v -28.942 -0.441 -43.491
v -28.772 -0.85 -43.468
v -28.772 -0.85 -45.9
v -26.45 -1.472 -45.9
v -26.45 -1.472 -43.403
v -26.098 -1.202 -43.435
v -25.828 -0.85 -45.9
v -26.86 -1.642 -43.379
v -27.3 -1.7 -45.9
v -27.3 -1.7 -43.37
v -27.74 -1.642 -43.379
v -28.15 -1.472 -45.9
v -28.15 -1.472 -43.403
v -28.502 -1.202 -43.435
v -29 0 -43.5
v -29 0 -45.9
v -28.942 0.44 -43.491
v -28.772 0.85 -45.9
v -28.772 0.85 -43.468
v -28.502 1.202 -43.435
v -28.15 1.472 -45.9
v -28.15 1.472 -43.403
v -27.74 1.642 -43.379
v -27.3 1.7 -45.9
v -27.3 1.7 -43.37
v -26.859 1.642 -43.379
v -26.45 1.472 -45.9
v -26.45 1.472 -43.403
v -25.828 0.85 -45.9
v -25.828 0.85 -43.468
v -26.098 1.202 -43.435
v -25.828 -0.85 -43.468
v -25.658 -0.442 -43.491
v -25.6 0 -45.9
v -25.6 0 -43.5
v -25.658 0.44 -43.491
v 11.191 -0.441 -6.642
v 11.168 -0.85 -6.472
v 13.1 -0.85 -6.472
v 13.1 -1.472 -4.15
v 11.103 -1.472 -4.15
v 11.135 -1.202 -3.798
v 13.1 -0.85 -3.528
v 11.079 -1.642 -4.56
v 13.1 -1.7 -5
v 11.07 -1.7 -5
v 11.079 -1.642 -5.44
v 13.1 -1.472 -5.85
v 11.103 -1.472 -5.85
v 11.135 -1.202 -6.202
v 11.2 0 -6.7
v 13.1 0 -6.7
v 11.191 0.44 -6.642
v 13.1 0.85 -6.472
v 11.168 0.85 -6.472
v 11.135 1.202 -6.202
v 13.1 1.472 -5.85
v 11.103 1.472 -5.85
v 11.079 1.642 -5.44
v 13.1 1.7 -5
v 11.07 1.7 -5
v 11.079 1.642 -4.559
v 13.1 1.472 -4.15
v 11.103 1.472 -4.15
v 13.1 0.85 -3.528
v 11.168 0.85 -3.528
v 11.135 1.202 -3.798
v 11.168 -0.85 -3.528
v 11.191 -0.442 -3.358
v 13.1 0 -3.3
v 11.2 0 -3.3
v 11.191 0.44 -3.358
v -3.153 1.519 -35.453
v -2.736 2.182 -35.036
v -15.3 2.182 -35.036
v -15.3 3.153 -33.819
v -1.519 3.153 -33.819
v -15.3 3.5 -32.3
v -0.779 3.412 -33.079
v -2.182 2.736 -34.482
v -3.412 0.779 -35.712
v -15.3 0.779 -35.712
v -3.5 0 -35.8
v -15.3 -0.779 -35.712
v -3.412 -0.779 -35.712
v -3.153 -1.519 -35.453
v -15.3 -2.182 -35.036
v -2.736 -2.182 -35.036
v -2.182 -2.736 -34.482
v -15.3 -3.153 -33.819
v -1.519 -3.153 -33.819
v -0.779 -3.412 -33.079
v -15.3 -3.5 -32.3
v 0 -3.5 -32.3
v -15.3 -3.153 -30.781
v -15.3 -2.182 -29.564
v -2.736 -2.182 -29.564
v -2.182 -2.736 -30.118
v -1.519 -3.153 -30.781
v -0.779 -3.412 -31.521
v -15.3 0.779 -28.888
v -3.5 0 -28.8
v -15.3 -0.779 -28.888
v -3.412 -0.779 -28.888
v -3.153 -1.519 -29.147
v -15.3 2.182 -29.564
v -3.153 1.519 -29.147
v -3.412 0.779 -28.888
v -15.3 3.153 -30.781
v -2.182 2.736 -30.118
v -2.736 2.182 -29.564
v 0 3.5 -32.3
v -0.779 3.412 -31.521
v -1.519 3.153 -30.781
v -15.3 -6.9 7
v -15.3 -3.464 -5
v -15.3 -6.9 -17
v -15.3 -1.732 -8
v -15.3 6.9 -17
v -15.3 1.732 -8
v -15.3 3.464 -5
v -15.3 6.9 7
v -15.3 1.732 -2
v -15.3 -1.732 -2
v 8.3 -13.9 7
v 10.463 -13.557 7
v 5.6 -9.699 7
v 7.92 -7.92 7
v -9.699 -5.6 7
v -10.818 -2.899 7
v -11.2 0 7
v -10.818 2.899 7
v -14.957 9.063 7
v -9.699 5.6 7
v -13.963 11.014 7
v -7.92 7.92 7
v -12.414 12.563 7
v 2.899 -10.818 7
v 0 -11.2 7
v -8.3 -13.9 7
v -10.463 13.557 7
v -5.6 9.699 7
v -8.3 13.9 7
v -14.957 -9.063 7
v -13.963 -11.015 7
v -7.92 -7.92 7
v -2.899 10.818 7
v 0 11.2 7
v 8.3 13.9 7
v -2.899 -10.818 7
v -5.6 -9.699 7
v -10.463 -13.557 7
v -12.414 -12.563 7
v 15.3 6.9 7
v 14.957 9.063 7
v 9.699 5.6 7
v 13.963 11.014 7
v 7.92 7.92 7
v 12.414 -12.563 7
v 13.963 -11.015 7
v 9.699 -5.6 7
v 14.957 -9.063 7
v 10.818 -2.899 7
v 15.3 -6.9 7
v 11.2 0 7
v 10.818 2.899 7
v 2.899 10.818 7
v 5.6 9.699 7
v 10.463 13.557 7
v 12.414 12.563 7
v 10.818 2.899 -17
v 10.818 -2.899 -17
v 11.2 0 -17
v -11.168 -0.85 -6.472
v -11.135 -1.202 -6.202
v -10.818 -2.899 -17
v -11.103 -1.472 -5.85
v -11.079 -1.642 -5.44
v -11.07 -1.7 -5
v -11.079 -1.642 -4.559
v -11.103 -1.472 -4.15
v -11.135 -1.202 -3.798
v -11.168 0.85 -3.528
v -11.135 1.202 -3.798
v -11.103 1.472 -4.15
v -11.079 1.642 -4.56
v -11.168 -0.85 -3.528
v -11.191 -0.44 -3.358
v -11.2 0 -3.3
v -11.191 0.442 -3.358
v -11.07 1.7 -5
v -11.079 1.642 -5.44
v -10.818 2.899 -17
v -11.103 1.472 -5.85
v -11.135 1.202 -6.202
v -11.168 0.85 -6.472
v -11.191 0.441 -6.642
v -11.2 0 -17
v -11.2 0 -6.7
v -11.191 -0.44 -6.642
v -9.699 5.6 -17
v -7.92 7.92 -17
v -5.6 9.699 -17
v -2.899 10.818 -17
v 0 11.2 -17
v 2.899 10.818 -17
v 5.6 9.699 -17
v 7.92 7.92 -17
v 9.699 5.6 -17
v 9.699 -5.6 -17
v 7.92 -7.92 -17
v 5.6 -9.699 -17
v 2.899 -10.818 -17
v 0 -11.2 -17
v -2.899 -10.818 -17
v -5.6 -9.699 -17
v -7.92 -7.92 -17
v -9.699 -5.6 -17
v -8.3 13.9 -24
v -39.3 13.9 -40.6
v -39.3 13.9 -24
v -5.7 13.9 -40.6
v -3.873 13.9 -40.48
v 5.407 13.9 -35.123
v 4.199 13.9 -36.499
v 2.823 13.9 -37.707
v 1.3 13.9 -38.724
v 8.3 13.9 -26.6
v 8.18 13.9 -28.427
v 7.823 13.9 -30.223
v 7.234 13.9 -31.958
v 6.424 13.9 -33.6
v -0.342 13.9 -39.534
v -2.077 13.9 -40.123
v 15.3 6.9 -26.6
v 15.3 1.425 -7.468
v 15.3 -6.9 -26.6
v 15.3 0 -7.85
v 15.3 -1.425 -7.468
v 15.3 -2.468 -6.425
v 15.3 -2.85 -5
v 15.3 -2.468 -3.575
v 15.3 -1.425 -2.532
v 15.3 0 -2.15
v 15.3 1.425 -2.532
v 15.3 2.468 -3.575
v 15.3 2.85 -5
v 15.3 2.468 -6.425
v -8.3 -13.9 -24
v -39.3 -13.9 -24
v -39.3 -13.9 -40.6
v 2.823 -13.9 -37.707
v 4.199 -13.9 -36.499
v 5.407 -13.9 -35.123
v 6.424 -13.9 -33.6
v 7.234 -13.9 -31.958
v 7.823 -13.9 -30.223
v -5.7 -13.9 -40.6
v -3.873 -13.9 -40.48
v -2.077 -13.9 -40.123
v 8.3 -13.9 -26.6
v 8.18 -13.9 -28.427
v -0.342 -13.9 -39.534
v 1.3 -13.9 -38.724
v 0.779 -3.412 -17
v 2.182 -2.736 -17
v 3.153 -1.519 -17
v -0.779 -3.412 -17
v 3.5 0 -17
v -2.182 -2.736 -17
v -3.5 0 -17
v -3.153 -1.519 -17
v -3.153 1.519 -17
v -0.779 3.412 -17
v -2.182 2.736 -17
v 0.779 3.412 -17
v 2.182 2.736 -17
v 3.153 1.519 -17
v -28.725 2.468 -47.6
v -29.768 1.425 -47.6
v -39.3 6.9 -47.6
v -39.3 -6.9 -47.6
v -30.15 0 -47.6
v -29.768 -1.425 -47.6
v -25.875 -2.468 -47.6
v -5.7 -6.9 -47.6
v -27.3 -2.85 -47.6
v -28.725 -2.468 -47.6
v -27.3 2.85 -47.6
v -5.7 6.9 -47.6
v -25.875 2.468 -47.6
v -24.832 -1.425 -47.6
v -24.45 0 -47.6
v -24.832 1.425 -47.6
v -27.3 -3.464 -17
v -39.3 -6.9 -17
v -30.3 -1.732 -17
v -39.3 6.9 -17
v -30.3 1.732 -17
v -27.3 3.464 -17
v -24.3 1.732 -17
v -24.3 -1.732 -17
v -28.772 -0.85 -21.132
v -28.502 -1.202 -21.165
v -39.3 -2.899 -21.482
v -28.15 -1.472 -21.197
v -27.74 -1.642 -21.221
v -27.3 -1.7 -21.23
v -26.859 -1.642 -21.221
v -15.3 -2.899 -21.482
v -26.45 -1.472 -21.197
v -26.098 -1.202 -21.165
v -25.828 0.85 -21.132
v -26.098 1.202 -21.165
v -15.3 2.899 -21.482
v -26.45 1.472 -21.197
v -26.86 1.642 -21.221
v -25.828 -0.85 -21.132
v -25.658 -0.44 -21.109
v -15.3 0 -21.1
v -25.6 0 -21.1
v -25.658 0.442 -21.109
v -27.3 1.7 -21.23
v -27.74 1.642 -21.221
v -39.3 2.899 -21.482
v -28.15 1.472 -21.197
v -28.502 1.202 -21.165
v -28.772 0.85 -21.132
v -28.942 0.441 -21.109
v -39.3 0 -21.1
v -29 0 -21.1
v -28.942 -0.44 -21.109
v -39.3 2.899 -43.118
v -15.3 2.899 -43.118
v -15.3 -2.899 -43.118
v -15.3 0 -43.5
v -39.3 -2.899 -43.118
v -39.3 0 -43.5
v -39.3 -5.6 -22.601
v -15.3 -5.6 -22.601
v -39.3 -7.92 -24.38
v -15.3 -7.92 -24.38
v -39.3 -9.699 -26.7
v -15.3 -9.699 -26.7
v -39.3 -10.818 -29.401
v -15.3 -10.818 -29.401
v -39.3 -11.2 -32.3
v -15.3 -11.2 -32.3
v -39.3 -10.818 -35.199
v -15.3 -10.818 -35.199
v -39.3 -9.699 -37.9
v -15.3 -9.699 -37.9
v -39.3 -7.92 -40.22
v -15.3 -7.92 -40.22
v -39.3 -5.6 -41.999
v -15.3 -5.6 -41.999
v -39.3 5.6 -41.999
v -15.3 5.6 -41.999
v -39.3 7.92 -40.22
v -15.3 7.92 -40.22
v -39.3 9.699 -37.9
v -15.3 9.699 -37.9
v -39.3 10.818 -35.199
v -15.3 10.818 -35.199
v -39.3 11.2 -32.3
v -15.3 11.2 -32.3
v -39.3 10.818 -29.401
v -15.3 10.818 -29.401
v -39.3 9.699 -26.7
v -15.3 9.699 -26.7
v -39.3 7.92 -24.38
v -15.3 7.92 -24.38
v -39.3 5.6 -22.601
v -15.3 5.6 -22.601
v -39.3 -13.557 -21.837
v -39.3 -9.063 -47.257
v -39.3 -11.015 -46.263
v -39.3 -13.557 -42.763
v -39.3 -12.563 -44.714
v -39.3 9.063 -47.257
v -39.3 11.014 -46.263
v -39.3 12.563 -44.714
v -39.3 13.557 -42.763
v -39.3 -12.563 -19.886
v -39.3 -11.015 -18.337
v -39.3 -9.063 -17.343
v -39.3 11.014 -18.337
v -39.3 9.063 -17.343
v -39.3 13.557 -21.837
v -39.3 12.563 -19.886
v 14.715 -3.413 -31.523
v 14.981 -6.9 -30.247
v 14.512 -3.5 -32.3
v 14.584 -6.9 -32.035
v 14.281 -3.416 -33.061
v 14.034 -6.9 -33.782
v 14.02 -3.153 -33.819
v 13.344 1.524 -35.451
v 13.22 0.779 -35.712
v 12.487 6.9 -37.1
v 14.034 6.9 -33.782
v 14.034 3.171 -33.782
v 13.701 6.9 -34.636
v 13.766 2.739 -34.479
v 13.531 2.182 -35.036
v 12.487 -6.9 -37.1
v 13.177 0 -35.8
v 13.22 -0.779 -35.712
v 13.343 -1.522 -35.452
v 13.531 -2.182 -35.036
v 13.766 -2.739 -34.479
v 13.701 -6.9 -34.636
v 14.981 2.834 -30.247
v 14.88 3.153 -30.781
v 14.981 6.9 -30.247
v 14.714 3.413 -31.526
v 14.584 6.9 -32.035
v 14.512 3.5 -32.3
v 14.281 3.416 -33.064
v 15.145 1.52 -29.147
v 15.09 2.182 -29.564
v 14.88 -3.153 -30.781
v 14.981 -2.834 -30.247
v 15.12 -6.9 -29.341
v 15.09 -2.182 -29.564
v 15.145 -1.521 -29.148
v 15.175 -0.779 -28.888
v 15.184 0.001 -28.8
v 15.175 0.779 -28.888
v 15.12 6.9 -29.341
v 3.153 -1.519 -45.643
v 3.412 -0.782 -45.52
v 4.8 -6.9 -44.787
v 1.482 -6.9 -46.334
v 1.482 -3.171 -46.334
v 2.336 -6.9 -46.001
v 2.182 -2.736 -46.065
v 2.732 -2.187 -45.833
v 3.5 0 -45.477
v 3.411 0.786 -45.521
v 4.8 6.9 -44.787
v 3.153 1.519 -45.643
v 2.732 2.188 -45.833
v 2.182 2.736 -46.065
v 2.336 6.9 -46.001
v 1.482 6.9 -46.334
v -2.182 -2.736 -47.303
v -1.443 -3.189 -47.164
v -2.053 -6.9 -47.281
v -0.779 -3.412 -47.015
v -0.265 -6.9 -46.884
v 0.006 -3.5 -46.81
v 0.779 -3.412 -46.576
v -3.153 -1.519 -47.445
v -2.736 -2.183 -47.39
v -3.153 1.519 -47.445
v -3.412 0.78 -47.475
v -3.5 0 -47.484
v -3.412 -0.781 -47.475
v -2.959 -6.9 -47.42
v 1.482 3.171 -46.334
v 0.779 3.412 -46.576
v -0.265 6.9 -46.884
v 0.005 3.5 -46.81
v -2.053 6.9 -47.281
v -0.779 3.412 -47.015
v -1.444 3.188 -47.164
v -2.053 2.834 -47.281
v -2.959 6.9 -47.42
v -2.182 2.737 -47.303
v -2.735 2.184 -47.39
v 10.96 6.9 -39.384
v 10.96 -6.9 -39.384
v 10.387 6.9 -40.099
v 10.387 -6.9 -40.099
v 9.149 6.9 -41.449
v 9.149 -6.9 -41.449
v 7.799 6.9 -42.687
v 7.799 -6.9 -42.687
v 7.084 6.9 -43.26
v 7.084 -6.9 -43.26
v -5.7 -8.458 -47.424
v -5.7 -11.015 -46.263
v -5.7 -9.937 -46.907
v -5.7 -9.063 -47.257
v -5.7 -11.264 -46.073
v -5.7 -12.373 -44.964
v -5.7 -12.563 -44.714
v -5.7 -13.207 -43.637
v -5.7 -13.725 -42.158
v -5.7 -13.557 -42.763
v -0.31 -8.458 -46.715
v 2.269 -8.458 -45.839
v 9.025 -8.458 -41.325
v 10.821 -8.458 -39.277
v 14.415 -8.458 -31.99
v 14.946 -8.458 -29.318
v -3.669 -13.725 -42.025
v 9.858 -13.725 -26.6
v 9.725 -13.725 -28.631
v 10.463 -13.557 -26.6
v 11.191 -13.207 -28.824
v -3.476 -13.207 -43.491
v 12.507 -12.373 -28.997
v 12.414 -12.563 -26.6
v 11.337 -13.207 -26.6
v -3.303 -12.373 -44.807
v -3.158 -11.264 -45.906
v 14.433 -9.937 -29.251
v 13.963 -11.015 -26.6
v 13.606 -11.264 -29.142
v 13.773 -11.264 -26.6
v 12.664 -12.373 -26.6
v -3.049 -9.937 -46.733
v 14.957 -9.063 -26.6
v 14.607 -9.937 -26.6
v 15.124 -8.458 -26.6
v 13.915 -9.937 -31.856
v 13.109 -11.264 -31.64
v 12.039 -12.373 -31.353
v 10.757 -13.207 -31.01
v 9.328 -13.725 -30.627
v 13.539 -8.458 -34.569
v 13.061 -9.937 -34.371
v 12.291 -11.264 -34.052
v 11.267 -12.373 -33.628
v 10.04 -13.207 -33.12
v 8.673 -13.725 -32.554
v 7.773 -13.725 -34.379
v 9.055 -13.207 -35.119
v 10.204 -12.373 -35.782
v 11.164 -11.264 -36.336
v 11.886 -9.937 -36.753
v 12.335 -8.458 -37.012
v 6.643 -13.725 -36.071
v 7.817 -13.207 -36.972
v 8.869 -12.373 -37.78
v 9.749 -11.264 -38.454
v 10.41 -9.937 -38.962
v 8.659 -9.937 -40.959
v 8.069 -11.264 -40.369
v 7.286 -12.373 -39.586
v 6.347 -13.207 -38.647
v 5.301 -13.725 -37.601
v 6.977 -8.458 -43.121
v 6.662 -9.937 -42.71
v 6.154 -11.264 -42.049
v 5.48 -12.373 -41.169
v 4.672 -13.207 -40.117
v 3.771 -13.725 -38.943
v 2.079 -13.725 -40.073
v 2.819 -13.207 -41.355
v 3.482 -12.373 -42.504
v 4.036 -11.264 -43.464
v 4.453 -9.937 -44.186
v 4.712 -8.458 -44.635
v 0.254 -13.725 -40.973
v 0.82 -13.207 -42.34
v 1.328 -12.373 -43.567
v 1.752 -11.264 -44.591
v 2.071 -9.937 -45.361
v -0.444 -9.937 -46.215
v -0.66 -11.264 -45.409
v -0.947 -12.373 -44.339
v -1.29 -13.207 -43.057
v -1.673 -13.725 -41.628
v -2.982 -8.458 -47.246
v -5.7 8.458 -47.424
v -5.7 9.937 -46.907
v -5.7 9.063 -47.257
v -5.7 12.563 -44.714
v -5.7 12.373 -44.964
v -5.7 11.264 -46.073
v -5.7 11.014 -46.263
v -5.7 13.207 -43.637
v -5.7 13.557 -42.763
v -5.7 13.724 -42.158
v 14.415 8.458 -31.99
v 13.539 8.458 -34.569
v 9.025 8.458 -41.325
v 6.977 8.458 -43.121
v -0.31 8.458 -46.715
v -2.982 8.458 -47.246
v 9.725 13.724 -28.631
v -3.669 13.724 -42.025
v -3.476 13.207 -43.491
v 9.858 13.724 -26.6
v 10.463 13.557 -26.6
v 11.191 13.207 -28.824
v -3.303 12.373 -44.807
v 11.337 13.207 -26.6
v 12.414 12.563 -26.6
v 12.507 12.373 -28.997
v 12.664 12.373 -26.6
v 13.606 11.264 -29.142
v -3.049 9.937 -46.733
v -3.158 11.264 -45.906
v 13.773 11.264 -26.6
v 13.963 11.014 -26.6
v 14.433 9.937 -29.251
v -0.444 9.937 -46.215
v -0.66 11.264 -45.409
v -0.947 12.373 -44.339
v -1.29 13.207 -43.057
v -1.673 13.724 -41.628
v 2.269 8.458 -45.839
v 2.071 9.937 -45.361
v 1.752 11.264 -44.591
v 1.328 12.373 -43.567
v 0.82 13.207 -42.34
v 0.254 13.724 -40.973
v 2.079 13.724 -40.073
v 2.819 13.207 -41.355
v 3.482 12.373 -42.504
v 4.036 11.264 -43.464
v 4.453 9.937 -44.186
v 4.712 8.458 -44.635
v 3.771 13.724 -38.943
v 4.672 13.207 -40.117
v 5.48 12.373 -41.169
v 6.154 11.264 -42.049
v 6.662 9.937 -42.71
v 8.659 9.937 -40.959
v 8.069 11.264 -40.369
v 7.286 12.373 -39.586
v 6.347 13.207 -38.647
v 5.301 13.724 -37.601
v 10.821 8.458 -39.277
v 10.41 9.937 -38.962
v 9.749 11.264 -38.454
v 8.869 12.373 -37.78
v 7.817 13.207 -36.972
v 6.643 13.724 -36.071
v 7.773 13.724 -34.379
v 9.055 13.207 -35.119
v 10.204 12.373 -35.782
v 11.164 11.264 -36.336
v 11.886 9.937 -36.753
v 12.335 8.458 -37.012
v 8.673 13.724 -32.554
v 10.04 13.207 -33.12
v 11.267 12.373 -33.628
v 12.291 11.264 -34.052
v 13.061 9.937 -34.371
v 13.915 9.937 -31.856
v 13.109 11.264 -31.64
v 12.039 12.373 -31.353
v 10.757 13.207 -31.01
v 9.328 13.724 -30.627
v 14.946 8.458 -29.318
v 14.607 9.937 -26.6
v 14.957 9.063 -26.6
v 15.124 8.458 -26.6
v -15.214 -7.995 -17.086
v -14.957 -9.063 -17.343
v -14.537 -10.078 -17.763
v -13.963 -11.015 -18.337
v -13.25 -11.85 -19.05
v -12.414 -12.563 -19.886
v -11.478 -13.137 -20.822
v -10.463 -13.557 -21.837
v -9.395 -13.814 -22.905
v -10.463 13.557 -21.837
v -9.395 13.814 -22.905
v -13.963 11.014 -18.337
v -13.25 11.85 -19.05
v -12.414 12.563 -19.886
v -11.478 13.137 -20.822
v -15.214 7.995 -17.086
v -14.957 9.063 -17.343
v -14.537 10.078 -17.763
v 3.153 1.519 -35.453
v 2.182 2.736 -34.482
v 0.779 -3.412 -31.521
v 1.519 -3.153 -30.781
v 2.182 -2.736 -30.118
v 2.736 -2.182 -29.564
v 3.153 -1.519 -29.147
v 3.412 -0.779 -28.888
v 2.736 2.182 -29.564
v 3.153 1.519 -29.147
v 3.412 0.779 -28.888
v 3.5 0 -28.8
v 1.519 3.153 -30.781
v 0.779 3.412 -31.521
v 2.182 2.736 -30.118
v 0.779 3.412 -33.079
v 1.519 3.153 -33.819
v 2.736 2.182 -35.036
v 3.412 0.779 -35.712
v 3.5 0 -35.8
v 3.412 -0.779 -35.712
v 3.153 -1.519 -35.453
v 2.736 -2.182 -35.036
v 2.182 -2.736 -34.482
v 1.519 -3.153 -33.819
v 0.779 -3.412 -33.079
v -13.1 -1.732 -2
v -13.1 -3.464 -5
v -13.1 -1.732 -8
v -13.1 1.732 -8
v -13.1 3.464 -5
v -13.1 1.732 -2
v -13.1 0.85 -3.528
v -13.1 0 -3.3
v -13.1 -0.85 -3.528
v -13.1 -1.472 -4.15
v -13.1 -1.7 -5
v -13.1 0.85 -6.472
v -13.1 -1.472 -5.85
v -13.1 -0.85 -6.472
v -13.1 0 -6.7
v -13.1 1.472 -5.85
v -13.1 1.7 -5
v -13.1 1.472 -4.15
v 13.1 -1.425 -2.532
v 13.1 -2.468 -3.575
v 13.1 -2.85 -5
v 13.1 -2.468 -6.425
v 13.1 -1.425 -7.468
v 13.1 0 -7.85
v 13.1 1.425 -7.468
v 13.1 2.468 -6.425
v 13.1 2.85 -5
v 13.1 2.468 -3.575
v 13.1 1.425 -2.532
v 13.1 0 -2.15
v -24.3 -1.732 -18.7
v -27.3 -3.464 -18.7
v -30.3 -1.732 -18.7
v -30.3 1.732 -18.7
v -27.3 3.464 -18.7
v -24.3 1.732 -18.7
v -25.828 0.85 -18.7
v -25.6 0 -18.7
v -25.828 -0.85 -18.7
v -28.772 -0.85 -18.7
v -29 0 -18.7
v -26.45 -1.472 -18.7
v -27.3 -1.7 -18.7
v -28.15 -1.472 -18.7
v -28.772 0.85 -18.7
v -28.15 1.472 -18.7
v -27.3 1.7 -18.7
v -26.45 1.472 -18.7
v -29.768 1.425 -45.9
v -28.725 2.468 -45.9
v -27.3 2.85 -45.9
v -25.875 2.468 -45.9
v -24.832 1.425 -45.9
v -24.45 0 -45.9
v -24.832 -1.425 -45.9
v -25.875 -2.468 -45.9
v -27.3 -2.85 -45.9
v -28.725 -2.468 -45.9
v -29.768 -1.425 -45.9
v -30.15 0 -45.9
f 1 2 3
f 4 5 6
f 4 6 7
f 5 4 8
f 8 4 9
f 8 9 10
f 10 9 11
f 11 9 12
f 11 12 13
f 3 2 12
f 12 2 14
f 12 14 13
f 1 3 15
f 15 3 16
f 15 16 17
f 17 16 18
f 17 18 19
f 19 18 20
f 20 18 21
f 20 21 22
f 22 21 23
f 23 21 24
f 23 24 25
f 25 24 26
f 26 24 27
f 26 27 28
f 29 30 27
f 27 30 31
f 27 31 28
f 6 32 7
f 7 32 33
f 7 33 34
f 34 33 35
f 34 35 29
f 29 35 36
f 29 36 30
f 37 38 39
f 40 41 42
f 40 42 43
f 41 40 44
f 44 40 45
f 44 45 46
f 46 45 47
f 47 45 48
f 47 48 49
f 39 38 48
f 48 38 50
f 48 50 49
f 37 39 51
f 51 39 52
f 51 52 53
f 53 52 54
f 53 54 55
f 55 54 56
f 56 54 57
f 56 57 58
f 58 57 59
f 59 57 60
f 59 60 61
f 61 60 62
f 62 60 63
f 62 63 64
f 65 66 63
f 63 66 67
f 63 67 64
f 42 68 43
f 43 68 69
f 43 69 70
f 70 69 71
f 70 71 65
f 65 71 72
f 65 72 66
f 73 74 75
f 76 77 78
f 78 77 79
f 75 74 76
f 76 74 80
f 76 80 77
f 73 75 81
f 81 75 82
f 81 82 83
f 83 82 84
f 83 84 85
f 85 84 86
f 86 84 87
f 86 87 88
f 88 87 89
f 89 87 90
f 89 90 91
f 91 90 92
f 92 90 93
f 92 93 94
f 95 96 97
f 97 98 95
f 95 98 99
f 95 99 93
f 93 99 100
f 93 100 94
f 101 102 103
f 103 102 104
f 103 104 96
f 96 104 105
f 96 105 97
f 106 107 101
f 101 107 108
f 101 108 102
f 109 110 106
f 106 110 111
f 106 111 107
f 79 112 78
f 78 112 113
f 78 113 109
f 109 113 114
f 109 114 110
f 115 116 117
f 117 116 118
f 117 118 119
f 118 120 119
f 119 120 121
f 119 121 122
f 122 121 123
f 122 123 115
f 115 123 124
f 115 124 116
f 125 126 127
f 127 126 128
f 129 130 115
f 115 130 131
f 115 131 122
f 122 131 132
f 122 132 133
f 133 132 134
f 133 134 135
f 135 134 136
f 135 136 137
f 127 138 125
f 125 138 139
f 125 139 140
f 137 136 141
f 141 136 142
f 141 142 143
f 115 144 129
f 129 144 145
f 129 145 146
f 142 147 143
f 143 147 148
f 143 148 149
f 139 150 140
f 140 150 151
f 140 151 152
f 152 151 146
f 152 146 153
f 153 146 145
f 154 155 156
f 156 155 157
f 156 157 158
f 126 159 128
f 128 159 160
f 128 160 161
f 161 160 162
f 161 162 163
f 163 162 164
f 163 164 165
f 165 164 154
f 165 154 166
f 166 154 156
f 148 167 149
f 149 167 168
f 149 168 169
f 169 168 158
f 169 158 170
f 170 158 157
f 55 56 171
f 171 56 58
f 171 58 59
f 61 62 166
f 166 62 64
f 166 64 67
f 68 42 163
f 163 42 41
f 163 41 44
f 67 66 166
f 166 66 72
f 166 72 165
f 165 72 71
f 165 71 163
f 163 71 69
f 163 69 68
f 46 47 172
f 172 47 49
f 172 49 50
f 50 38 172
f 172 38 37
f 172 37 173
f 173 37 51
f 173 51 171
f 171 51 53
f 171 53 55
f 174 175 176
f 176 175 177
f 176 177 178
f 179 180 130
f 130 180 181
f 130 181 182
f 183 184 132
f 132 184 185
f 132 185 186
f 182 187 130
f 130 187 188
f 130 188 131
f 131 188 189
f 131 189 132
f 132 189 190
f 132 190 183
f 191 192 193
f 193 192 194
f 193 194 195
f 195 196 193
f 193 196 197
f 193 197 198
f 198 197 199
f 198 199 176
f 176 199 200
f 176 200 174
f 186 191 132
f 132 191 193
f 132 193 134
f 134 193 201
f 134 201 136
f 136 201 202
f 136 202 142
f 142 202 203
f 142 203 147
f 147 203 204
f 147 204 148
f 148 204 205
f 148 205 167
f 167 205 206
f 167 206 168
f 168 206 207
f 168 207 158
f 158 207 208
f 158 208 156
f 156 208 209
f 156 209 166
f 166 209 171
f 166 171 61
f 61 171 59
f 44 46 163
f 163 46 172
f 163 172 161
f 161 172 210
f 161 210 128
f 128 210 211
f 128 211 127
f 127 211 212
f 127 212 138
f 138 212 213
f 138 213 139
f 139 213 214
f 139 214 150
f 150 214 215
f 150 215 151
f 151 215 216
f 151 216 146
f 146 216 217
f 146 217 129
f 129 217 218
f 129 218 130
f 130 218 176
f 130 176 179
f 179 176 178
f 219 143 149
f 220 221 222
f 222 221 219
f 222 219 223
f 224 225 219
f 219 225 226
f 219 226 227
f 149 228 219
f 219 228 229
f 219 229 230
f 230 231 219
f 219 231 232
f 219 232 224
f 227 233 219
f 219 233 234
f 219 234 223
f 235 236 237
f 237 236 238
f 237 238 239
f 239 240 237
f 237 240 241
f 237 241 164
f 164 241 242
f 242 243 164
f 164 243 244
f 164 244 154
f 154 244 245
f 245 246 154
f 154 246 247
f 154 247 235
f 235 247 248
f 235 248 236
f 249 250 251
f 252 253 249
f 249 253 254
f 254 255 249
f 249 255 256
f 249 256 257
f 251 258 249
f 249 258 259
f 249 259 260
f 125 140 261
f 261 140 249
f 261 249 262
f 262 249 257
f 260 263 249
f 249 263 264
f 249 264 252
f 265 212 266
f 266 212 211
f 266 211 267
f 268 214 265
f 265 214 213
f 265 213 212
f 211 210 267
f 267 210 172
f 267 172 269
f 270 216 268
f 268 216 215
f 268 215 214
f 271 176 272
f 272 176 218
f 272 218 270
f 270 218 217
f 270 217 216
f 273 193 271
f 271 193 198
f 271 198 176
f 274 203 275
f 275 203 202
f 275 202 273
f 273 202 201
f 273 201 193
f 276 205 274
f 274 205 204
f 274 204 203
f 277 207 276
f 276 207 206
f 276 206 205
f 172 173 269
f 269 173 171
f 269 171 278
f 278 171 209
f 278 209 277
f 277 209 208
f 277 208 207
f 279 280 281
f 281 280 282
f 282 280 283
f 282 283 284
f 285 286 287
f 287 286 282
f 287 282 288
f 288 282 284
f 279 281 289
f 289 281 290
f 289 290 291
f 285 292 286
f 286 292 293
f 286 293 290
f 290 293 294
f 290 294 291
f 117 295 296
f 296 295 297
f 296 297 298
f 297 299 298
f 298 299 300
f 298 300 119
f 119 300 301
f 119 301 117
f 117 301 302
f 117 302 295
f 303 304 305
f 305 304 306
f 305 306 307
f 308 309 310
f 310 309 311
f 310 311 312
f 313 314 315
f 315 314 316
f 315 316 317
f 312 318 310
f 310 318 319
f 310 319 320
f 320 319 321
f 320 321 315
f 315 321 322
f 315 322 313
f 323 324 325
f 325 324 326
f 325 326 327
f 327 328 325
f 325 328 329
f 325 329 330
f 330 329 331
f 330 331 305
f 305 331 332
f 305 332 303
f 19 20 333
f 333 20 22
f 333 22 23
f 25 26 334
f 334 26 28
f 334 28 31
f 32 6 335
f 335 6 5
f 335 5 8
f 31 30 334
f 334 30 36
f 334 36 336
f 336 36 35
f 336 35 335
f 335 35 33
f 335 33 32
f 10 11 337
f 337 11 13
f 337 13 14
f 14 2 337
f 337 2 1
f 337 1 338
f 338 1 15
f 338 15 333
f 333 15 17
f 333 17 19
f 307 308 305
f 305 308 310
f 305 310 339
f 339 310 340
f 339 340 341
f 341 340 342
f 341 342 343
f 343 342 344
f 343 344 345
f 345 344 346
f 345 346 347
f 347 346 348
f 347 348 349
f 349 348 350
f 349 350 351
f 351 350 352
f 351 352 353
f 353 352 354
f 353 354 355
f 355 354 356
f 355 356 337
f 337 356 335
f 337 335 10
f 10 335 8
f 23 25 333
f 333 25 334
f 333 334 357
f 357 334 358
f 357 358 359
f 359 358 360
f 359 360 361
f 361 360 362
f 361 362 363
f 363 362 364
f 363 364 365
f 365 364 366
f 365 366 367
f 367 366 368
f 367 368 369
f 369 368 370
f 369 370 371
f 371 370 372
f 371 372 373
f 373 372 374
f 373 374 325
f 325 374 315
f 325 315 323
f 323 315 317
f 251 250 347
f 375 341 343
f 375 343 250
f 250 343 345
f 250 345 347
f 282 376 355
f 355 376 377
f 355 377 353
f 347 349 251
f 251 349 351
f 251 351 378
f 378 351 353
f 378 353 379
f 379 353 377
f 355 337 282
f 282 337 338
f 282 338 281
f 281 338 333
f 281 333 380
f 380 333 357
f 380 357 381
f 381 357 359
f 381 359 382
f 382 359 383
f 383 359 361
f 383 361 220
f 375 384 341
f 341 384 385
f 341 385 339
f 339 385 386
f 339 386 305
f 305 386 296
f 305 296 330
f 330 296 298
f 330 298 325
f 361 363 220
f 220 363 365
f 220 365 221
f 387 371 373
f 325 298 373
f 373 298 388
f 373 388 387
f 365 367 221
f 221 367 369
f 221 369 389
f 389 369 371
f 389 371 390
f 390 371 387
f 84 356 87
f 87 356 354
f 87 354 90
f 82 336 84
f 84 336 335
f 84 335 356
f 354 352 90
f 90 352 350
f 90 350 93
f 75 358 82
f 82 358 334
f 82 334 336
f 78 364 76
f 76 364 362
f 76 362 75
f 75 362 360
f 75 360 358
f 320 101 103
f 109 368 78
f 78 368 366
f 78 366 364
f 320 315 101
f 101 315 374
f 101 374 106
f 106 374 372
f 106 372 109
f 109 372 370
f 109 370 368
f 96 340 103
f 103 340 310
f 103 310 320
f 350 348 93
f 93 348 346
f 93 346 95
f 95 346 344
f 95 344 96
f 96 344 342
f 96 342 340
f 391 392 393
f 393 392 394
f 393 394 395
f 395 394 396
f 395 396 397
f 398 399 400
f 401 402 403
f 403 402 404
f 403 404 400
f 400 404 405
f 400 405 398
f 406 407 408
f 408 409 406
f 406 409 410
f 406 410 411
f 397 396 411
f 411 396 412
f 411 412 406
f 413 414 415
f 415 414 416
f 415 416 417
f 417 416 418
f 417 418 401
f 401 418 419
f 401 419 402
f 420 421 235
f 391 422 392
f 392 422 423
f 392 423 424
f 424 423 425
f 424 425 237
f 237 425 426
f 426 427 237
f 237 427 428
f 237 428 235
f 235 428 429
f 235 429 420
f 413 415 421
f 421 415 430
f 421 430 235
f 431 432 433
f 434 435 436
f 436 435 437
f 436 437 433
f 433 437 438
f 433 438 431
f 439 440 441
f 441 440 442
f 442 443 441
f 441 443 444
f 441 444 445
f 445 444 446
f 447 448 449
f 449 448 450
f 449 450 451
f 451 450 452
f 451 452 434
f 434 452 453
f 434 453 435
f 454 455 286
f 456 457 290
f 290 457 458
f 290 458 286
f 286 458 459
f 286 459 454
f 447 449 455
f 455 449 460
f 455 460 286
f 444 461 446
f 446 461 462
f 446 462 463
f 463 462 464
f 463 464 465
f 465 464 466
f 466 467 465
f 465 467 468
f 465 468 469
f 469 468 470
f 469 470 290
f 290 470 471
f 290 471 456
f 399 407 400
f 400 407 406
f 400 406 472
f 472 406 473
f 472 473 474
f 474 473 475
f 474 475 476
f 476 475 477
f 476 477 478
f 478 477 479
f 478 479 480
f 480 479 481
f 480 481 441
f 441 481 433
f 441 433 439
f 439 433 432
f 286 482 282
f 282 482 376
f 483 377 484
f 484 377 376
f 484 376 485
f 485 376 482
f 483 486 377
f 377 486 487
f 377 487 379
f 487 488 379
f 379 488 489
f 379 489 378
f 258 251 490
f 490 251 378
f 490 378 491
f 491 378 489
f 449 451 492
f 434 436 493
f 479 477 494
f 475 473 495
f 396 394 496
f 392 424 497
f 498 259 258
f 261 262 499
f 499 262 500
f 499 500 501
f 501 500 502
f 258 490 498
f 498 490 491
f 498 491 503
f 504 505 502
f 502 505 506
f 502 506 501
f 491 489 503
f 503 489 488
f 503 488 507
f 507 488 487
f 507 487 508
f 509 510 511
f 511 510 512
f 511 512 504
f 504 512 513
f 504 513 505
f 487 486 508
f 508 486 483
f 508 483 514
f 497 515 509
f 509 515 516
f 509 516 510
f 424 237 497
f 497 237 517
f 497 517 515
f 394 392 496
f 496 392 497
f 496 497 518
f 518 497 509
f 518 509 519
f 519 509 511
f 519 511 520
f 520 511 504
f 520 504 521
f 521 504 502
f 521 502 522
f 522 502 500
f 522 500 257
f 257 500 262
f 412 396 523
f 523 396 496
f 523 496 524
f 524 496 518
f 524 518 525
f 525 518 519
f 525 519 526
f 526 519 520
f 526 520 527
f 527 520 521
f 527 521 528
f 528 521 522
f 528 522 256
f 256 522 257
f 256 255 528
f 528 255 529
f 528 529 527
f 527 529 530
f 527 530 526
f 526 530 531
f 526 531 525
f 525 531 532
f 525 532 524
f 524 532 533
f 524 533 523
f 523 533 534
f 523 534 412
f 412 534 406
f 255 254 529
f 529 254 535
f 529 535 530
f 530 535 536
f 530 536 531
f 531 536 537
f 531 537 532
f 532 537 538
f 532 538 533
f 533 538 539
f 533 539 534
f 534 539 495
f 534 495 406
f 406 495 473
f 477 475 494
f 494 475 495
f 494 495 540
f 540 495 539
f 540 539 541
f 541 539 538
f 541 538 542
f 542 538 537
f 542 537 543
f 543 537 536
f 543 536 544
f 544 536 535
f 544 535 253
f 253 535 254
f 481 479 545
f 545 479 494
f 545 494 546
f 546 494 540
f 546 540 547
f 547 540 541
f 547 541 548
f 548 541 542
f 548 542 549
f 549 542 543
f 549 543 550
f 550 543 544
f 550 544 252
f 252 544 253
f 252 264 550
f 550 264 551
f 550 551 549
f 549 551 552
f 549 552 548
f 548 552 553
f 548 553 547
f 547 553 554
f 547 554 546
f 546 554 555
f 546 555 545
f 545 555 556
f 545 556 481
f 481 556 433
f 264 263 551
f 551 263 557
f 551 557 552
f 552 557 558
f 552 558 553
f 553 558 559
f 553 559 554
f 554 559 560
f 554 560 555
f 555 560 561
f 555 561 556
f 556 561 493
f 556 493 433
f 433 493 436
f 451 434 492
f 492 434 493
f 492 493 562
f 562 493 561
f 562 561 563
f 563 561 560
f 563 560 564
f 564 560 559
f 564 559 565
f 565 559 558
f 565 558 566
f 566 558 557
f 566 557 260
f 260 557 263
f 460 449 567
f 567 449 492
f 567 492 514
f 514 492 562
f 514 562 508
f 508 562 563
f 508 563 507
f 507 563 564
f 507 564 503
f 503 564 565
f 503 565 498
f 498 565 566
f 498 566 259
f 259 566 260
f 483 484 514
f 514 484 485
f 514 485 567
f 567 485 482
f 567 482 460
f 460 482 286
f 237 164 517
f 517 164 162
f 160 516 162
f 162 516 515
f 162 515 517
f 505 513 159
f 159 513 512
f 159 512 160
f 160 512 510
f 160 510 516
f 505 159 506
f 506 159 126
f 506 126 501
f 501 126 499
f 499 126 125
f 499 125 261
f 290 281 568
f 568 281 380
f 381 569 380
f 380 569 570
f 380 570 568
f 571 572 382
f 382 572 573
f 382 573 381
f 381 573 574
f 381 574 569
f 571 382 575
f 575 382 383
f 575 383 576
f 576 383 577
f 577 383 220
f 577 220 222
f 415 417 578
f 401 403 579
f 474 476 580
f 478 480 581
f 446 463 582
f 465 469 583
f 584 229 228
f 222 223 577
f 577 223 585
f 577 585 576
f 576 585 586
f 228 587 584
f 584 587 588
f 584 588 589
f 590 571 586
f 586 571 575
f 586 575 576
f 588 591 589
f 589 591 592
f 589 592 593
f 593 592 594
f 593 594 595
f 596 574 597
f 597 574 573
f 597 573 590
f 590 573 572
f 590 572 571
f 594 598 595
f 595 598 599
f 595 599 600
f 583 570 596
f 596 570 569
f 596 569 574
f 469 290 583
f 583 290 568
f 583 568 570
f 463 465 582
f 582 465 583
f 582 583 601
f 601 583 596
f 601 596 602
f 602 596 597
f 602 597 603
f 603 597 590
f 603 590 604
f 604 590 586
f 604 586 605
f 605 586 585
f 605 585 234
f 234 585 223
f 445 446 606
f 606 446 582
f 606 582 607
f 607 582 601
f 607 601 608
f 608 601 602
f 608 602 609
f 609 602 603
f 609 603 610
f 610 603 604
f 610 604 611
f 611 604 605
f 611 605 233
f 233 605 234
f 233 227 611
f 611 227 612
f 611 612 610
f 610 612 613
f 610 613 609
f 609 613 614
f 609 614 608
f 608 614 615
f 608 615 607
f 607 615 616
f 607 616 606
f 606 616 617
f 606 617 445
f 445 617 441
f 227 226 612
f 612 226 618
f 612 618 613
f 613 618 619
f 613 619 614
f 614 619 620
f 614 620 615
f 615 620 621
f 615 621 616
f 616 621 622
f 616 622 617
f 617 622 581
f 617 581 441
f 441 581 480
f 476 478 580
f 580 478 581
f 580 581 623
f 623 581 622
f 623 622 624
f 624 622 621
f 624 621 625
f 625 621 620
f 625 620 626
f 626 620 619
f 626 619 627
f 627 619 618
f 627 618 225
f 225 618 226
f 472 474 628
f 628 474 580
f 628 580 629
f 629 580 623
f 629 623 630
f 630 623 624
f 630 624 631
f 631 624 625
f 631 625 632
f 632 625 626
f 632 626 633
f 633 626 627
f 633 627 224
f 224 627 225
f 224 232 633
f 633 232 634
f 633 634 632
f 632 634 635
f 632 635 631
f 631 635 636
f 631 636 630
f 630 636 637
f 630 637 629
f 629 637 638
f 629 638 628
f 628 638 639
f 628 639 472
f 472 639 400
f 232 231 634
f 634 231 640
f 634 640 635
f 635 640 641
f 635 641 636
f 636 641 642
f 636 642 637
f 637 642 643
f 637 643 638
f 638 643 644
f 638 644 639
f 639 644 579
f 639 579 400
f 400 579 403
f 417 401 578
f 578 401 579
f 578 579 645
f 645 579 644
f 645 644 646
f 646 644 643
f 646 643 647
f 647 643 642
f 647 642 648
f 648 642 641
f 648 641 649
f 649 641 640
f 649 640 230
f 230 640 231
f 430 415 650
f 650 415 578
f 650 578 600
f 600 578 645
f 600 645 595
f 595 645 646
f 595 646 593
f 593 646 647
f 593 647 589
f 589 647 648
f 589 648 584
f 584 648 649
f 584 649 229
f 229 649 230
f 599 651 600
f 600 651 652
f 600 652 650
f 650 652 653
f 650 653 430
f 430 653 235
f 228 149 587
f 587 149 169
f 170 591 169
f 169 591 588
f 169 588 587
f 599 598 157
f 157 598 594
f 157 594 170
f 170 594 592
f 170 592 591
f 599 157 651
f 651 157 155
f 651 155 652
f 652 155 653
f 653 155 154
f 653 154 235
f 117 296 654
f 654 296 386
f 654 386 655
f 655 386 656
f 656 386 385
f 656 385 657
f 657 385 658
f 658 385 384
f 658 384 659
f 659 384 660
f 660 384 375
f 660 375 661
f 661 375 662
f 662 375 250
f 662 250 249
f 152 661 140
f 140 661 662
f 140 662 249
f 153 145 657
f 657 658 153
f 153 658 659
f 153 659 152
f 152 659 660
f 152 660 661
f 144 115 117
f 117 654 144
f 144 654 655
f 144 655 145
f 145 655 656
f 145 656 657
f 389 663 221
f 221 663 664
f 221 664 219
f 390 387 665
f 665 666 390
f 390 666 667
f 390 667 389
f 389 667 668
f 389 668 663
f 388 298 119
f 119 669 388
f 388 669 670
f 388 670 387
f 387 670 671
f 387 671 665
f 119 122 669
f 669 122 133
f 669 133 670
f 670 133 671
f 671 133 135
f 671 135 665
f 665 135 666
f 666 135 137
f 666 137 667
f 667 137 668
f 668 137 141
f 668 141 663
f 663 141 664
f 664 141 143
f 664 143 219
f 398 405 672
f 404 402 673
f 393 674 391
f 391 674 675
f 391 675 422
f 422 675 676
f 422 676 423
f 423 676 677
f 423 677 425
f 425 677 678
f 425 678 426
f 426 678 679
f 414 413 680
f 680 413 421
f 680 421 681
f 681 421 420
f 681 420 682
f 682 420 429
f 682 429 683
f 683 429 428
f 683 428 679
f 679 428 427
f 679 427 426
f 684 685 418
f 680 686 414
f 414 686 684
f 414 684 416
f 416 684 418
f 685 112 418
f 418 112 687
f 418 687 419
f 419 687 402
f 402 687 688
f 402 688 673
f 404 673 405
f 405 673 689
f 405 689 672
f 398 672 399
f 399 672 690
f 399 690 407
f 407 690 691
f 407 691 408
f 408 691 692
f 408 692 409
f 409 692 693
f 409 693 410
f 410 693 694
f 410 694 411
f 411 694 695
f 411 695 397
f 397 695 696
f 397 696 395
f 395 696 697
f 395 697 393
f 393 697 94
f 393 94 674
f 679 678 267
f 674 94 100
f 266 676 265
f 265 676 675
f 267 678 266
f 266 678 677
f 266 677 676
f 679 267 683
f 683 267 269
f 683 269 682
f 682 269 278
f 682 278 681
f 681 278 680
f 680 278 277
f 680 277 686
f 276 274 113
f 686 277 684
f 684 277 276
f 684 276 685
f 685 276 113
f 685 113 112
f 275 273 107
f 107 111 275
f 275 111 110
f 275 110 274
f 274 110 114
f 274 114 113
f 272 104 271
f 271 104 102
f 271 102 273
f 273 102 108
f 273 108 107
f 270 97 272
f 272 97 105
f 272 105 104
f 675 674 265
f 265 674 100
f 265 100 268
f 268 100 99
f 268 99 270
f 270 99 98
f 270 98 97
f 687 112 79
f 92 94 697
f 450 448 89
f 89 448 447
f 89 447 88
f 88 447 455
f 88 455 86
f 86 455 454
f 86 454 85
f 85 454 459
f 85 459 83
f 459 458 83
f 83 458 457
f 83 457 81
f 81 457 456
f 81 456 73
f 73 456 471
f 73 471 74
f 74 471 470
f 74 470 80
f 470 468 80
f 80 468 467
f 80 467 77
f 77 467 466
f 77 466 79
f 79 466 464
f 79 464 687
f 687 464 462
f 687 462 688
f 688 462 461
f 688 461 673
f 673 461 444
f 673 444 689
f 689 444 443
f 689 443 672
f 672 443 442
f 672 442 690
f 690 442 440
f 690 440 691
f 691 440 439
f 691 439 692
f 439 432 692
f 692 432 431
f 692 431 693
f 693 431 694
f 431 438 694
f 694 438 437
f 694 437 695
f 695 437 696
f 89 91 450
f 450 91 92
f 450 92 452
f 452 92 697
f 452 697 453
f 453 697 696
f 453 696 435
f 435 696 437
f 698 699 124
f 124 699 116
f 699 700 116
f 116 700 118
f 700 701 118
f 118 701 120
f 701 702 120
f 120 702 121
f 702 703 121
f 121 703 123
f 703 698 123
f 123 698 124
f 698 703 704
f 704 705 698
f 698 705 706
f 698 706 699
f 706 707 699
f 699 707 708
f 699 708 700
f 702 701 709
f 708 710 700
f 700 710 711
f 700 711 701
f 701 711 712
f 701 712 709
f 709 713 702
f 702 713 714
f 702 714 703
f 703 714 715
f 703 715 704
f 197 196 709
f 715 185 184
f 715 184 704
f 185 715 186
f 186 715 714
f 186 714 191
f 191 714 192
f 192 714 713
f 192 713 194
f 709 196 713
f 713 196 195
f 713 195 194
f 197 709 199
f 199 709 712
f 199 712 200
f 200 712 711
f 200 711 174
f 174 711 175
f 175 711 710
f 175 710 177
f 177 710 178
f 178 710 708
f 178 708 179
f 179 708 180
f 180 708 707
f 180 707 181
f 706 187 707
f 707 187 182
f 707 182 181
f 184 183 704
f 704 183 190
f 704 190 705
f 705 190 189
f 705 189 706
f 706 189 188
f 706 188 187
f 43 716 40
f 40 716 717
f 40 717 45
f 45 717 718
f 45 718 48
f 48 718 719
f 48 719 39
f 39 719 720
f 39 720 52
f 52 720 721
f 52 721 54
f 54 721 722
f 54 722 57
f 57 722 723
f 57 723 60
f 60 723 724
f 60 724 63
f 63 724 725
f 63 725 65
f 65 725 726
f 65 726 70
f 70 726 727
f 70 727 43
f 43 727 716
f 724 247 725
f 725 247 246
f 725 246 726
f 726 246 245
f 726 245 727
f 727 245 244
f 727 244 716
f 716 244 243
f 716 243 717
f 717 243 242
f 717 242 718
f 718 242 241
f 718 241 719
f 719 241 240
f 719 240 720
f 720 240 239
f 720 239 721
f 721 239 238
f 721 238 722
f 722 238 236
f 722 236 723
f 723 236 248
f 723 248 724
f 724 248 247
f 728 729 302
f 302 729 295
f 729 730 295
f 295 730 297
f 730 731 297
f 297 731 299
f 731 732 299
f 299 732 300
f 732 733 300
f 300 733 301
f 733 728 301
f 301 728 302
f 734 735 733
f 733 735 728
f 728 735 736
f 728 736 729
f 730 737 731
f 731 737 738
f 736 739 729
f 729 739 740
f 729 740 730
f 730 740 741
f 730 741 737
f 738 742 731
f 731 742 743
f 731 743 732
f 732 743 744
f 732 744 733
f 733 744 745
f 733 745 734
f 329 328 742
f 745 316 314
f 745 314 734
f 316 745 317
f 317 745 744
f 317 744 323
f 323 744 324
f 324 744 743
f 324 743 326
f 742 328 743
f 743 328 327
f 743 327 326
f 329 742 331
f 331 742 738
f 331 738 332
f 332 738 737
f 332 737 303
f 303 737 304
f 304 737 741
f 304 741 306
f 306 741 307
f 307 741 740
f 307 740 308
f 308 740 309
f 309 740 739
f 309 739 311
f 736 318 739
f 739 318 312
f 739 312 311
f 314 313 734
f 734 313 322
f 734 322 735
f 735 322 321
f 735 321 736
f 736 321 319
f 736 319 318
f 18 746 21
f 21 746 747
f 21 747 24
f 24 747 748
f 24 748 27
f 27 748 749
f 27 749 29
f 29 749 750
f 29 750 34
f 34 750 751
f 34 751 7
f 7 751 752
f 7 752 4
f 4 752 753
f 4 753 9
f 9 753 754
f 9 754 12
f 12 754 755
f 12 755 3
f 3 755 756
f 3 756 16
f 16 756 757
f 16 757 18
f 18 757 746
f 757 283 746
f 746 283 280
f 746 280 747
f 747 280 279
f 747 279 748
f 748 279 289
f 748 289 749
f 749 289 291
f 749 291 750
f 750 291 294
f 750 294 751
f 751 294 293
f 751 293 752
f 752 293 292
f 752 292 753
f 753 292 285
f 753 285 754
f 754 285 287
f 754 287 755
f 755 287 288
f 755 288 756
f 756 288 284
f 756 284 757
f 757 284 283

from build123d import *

# Parameters (mm, degrees)
SKETCH1_R           = 13.9
SKETCH1_R_2         = 11.2
BOSS_EXTRUDE1_DEPTH = 7
SKETCH2_W           = 30.6
SKETCH2_H           = 27.8
SKETCH2_R           = 11.2
BOSS_EXTRUDE2_DEPTH = 24
SKETCH6_W           = 30.6
SKETCH6_H           = 27.8
SKETCH6_R           = 11.2
BOSS_EXTRUDE6_DEPTH = 24
SKETCH7_W           = 30.6
SKETCH7_H           = 30.6
BOSS_EXTRUDE7_DEPTH = 27.8
FILLET1_R           = 21
FILLET2_R           = 7
SKETCH8_R           = 3.5
CUT_EXTRUDE1_DEPTH  = 31.6000001
SKETCH9_R           = 3.5
CUT_EXTRUDE2_DEPTH  = 31.6000001
CUT_EXTRUDE3_DEPTH  = 2.2
SKETCH12_R          = 1.7
CUT_EXTRUDE4_DEPTH  = 29.4000001
SKETCH13_R          = 2.85
CUT_EXTRUDE5_DEPTH  = 2.2
CUT_EXTRUDE6_DEPTH  = 1.7
SKETCH16_R          = 1.7
CUT_EXTRUDE7_DEPTH  = 29.9000001
SKETCH17_R          = 2.85
CUT_EXTRUDE8_DEPTH  = 1.7


with BuildPart() as part:
    # Sketch1 → Boss-Extrude1 (new body)
    with BuildSketch(Plane.XY):
        Circle(SKETCH1_R)
        Circle(SKETCH1_R_2, mode=Mode.SUBTRACT)
    extrude(amount=BOSS_EXTRUDE1_DEPTH)

    # Sketch2 → Boss-Extrude2 (add)
    with BuildSketch(Plane.XY.offset(7)):
        Rectangle(SKETCH2_W, SKETCH2_H)
        Circle(SKETCH2_R, mode=Mode.SUBTRACT)
    extrude(amount=-BOSS_EXTRUDE2_DEPTH)



with BuildPart() as body_2:
    # Sketch6 → Boss-Extrude6 (new body)
    with BuildSketch(Plane.ZY.offset(15.3)):
        with Locations((-32.3, 0)):
            Rectangle(SKETCH6_W, SKETCH6_H)
        with Locations((-32.3, 0)):
            Circle(SKETCH6_R, mode=Mode.SUBTRACT)
    extrude(amount=BOSS_EXTRUDE6_DEPTH)


with BuildPart() as part_1:
    add(part.part)

    add(body_2.part)  # Boss-Extrude7 merges body 2
    # Sketch7 → Boss-Extrude7 (add)
    with BuildSketch(Plane(origin=(0, 13.9, 0), x_dir=(1, 0, 0), z_dir=(0, 1, 0))):
        with Locations((0, 32.3)):
            Rectangle(SKETCH7_W, SKETCH7_H)
    extrude(amount=-BOSS_EXTRUDE7_DEPTH)

    # Fillet1
    fillet1_edges = [part_1.edges().sort_by_distance(p)[0] for p in [
        (15.3, 0, -47.6),
    ]]
    fillet(fillet1_edges, radius=FILLET1_R)

    # Fillet2
    fillet2_edges = [part_1.edges().sort_by_distance(p)[0] for p in [
        (-22.5, -13.9, -47.6),
        (-15.3, 13.9, -5),
        (-15.3, -13.9, -5),
        (-27.3, 13.9, -17),
        (-27.3, -13.9, -17),
        (15.3, -13.9, -9.8),
        (15.3, 13.9, -9.8),
        (-22.5, 13.9, -47.6),
        (9.149242405, 13.9, -41.449242405),
        (9.149242405, -13.9, -41.449242405),
    ]]
    fillet(fillet2_edges, radius=FILLET2_R)

    # Sketch8 → Cut-Extrude1 (cut, through all)
    with BuildSketch(Plane.ZY.offset(15.3)):
        with Locations((-32.3, 0)):
            Circle(SKETCH8_R)
    extrude(amount=-CUT_EXTRUDE1_DEPTH, mode=Mode.SUBTRACT)

    # Sketch9 → Cut-Extrude2 (cut, through all)
    with BuildSketch(Plane.XY.offset(-17)):
        Circle(SKETCH9_R)
    extrude(amount=-CUT_EXTRUDE2_DEPTH, mode=Mode.SUBTRACT)

    # Sketch11 → Cut-Extrude3 (cut)
    with BuildSketch(Plane.ZY.offset(15.3)):
        Polygon((-2, -1.732050808), (-2, 1.732050808), (-5, 3.464101615), (-8, 1.732050808), (-8, -1.732050808), (-5, -3.464101615), align=None)
    extrude(amount=-CUT_EXTRUDE3_DEPTH, mode=Mode.SUBTRACT)

    # Sketch12 → Cut-Extrude4 (cut, through all)
    with BuildSketch(Plane.ZY.offset(13.1)):
        with Locations((-5, 0)):
            Circle(SKETCH12_R)
    extrude(amount=-CUT_EXTRUDE4_DEPTH, mode=Mode.SUBTRACT)

    # Sketch13 → Cut-Extrude5 (cut)
    with BuildSketch(Plane(origin=(15.3, 0, 0), x_dir=(0, 0, -1), z_dir=(1, 0, 0))):
        with Locations((5, 0)):
            Circle(SKETCH13_R)
    extrude(amount=-CUT_EXTRUDE5_DEPTH, mode=Mode.SUBTRACT)

    # Sketch15 → Cut-Extrude6 (cut)
    with BuildSketch(Plane.XY.offset(-17)):
        Polygon((-24.3, -1.732050808), (-24.3, 1.732050808), (-27.3, 3.464101615), (-30.3, 1.732050808), (-30.3, -1.732050808), (-27.3, -3.464101615), align=None)
    extrude(amount=-CUT_EXTRUDE6_DEPTH, mode=Mode.SUBTRACT)

    # Sketch16 → Cut-Extrude7 (cut, through all)
    with BuildSketch(Plane.XY.offset(-18.7)):
        with Locations((-27.3, 0)):
            Circle(SKETCH16_R)
    extrude(amount=-CUT_EXTRUDE7_DEPTH, mode=Mode.SUBTRACT)

    # Sketch17 → Cut-Extrude8 (cut)
    with BuildSketch(Plane(origin=(0, 0, -47.6), x_dir=(-1, 0, 0), z_dir=(0, 0, -1))):
        with Locations((27.3, 0)):
            Circle(SKETCH17_R)
    extrude(amount=-CUT_EXTRUDE8_DEPTH, mode=Mode.SUBTRACT)


solid = part_1.part
